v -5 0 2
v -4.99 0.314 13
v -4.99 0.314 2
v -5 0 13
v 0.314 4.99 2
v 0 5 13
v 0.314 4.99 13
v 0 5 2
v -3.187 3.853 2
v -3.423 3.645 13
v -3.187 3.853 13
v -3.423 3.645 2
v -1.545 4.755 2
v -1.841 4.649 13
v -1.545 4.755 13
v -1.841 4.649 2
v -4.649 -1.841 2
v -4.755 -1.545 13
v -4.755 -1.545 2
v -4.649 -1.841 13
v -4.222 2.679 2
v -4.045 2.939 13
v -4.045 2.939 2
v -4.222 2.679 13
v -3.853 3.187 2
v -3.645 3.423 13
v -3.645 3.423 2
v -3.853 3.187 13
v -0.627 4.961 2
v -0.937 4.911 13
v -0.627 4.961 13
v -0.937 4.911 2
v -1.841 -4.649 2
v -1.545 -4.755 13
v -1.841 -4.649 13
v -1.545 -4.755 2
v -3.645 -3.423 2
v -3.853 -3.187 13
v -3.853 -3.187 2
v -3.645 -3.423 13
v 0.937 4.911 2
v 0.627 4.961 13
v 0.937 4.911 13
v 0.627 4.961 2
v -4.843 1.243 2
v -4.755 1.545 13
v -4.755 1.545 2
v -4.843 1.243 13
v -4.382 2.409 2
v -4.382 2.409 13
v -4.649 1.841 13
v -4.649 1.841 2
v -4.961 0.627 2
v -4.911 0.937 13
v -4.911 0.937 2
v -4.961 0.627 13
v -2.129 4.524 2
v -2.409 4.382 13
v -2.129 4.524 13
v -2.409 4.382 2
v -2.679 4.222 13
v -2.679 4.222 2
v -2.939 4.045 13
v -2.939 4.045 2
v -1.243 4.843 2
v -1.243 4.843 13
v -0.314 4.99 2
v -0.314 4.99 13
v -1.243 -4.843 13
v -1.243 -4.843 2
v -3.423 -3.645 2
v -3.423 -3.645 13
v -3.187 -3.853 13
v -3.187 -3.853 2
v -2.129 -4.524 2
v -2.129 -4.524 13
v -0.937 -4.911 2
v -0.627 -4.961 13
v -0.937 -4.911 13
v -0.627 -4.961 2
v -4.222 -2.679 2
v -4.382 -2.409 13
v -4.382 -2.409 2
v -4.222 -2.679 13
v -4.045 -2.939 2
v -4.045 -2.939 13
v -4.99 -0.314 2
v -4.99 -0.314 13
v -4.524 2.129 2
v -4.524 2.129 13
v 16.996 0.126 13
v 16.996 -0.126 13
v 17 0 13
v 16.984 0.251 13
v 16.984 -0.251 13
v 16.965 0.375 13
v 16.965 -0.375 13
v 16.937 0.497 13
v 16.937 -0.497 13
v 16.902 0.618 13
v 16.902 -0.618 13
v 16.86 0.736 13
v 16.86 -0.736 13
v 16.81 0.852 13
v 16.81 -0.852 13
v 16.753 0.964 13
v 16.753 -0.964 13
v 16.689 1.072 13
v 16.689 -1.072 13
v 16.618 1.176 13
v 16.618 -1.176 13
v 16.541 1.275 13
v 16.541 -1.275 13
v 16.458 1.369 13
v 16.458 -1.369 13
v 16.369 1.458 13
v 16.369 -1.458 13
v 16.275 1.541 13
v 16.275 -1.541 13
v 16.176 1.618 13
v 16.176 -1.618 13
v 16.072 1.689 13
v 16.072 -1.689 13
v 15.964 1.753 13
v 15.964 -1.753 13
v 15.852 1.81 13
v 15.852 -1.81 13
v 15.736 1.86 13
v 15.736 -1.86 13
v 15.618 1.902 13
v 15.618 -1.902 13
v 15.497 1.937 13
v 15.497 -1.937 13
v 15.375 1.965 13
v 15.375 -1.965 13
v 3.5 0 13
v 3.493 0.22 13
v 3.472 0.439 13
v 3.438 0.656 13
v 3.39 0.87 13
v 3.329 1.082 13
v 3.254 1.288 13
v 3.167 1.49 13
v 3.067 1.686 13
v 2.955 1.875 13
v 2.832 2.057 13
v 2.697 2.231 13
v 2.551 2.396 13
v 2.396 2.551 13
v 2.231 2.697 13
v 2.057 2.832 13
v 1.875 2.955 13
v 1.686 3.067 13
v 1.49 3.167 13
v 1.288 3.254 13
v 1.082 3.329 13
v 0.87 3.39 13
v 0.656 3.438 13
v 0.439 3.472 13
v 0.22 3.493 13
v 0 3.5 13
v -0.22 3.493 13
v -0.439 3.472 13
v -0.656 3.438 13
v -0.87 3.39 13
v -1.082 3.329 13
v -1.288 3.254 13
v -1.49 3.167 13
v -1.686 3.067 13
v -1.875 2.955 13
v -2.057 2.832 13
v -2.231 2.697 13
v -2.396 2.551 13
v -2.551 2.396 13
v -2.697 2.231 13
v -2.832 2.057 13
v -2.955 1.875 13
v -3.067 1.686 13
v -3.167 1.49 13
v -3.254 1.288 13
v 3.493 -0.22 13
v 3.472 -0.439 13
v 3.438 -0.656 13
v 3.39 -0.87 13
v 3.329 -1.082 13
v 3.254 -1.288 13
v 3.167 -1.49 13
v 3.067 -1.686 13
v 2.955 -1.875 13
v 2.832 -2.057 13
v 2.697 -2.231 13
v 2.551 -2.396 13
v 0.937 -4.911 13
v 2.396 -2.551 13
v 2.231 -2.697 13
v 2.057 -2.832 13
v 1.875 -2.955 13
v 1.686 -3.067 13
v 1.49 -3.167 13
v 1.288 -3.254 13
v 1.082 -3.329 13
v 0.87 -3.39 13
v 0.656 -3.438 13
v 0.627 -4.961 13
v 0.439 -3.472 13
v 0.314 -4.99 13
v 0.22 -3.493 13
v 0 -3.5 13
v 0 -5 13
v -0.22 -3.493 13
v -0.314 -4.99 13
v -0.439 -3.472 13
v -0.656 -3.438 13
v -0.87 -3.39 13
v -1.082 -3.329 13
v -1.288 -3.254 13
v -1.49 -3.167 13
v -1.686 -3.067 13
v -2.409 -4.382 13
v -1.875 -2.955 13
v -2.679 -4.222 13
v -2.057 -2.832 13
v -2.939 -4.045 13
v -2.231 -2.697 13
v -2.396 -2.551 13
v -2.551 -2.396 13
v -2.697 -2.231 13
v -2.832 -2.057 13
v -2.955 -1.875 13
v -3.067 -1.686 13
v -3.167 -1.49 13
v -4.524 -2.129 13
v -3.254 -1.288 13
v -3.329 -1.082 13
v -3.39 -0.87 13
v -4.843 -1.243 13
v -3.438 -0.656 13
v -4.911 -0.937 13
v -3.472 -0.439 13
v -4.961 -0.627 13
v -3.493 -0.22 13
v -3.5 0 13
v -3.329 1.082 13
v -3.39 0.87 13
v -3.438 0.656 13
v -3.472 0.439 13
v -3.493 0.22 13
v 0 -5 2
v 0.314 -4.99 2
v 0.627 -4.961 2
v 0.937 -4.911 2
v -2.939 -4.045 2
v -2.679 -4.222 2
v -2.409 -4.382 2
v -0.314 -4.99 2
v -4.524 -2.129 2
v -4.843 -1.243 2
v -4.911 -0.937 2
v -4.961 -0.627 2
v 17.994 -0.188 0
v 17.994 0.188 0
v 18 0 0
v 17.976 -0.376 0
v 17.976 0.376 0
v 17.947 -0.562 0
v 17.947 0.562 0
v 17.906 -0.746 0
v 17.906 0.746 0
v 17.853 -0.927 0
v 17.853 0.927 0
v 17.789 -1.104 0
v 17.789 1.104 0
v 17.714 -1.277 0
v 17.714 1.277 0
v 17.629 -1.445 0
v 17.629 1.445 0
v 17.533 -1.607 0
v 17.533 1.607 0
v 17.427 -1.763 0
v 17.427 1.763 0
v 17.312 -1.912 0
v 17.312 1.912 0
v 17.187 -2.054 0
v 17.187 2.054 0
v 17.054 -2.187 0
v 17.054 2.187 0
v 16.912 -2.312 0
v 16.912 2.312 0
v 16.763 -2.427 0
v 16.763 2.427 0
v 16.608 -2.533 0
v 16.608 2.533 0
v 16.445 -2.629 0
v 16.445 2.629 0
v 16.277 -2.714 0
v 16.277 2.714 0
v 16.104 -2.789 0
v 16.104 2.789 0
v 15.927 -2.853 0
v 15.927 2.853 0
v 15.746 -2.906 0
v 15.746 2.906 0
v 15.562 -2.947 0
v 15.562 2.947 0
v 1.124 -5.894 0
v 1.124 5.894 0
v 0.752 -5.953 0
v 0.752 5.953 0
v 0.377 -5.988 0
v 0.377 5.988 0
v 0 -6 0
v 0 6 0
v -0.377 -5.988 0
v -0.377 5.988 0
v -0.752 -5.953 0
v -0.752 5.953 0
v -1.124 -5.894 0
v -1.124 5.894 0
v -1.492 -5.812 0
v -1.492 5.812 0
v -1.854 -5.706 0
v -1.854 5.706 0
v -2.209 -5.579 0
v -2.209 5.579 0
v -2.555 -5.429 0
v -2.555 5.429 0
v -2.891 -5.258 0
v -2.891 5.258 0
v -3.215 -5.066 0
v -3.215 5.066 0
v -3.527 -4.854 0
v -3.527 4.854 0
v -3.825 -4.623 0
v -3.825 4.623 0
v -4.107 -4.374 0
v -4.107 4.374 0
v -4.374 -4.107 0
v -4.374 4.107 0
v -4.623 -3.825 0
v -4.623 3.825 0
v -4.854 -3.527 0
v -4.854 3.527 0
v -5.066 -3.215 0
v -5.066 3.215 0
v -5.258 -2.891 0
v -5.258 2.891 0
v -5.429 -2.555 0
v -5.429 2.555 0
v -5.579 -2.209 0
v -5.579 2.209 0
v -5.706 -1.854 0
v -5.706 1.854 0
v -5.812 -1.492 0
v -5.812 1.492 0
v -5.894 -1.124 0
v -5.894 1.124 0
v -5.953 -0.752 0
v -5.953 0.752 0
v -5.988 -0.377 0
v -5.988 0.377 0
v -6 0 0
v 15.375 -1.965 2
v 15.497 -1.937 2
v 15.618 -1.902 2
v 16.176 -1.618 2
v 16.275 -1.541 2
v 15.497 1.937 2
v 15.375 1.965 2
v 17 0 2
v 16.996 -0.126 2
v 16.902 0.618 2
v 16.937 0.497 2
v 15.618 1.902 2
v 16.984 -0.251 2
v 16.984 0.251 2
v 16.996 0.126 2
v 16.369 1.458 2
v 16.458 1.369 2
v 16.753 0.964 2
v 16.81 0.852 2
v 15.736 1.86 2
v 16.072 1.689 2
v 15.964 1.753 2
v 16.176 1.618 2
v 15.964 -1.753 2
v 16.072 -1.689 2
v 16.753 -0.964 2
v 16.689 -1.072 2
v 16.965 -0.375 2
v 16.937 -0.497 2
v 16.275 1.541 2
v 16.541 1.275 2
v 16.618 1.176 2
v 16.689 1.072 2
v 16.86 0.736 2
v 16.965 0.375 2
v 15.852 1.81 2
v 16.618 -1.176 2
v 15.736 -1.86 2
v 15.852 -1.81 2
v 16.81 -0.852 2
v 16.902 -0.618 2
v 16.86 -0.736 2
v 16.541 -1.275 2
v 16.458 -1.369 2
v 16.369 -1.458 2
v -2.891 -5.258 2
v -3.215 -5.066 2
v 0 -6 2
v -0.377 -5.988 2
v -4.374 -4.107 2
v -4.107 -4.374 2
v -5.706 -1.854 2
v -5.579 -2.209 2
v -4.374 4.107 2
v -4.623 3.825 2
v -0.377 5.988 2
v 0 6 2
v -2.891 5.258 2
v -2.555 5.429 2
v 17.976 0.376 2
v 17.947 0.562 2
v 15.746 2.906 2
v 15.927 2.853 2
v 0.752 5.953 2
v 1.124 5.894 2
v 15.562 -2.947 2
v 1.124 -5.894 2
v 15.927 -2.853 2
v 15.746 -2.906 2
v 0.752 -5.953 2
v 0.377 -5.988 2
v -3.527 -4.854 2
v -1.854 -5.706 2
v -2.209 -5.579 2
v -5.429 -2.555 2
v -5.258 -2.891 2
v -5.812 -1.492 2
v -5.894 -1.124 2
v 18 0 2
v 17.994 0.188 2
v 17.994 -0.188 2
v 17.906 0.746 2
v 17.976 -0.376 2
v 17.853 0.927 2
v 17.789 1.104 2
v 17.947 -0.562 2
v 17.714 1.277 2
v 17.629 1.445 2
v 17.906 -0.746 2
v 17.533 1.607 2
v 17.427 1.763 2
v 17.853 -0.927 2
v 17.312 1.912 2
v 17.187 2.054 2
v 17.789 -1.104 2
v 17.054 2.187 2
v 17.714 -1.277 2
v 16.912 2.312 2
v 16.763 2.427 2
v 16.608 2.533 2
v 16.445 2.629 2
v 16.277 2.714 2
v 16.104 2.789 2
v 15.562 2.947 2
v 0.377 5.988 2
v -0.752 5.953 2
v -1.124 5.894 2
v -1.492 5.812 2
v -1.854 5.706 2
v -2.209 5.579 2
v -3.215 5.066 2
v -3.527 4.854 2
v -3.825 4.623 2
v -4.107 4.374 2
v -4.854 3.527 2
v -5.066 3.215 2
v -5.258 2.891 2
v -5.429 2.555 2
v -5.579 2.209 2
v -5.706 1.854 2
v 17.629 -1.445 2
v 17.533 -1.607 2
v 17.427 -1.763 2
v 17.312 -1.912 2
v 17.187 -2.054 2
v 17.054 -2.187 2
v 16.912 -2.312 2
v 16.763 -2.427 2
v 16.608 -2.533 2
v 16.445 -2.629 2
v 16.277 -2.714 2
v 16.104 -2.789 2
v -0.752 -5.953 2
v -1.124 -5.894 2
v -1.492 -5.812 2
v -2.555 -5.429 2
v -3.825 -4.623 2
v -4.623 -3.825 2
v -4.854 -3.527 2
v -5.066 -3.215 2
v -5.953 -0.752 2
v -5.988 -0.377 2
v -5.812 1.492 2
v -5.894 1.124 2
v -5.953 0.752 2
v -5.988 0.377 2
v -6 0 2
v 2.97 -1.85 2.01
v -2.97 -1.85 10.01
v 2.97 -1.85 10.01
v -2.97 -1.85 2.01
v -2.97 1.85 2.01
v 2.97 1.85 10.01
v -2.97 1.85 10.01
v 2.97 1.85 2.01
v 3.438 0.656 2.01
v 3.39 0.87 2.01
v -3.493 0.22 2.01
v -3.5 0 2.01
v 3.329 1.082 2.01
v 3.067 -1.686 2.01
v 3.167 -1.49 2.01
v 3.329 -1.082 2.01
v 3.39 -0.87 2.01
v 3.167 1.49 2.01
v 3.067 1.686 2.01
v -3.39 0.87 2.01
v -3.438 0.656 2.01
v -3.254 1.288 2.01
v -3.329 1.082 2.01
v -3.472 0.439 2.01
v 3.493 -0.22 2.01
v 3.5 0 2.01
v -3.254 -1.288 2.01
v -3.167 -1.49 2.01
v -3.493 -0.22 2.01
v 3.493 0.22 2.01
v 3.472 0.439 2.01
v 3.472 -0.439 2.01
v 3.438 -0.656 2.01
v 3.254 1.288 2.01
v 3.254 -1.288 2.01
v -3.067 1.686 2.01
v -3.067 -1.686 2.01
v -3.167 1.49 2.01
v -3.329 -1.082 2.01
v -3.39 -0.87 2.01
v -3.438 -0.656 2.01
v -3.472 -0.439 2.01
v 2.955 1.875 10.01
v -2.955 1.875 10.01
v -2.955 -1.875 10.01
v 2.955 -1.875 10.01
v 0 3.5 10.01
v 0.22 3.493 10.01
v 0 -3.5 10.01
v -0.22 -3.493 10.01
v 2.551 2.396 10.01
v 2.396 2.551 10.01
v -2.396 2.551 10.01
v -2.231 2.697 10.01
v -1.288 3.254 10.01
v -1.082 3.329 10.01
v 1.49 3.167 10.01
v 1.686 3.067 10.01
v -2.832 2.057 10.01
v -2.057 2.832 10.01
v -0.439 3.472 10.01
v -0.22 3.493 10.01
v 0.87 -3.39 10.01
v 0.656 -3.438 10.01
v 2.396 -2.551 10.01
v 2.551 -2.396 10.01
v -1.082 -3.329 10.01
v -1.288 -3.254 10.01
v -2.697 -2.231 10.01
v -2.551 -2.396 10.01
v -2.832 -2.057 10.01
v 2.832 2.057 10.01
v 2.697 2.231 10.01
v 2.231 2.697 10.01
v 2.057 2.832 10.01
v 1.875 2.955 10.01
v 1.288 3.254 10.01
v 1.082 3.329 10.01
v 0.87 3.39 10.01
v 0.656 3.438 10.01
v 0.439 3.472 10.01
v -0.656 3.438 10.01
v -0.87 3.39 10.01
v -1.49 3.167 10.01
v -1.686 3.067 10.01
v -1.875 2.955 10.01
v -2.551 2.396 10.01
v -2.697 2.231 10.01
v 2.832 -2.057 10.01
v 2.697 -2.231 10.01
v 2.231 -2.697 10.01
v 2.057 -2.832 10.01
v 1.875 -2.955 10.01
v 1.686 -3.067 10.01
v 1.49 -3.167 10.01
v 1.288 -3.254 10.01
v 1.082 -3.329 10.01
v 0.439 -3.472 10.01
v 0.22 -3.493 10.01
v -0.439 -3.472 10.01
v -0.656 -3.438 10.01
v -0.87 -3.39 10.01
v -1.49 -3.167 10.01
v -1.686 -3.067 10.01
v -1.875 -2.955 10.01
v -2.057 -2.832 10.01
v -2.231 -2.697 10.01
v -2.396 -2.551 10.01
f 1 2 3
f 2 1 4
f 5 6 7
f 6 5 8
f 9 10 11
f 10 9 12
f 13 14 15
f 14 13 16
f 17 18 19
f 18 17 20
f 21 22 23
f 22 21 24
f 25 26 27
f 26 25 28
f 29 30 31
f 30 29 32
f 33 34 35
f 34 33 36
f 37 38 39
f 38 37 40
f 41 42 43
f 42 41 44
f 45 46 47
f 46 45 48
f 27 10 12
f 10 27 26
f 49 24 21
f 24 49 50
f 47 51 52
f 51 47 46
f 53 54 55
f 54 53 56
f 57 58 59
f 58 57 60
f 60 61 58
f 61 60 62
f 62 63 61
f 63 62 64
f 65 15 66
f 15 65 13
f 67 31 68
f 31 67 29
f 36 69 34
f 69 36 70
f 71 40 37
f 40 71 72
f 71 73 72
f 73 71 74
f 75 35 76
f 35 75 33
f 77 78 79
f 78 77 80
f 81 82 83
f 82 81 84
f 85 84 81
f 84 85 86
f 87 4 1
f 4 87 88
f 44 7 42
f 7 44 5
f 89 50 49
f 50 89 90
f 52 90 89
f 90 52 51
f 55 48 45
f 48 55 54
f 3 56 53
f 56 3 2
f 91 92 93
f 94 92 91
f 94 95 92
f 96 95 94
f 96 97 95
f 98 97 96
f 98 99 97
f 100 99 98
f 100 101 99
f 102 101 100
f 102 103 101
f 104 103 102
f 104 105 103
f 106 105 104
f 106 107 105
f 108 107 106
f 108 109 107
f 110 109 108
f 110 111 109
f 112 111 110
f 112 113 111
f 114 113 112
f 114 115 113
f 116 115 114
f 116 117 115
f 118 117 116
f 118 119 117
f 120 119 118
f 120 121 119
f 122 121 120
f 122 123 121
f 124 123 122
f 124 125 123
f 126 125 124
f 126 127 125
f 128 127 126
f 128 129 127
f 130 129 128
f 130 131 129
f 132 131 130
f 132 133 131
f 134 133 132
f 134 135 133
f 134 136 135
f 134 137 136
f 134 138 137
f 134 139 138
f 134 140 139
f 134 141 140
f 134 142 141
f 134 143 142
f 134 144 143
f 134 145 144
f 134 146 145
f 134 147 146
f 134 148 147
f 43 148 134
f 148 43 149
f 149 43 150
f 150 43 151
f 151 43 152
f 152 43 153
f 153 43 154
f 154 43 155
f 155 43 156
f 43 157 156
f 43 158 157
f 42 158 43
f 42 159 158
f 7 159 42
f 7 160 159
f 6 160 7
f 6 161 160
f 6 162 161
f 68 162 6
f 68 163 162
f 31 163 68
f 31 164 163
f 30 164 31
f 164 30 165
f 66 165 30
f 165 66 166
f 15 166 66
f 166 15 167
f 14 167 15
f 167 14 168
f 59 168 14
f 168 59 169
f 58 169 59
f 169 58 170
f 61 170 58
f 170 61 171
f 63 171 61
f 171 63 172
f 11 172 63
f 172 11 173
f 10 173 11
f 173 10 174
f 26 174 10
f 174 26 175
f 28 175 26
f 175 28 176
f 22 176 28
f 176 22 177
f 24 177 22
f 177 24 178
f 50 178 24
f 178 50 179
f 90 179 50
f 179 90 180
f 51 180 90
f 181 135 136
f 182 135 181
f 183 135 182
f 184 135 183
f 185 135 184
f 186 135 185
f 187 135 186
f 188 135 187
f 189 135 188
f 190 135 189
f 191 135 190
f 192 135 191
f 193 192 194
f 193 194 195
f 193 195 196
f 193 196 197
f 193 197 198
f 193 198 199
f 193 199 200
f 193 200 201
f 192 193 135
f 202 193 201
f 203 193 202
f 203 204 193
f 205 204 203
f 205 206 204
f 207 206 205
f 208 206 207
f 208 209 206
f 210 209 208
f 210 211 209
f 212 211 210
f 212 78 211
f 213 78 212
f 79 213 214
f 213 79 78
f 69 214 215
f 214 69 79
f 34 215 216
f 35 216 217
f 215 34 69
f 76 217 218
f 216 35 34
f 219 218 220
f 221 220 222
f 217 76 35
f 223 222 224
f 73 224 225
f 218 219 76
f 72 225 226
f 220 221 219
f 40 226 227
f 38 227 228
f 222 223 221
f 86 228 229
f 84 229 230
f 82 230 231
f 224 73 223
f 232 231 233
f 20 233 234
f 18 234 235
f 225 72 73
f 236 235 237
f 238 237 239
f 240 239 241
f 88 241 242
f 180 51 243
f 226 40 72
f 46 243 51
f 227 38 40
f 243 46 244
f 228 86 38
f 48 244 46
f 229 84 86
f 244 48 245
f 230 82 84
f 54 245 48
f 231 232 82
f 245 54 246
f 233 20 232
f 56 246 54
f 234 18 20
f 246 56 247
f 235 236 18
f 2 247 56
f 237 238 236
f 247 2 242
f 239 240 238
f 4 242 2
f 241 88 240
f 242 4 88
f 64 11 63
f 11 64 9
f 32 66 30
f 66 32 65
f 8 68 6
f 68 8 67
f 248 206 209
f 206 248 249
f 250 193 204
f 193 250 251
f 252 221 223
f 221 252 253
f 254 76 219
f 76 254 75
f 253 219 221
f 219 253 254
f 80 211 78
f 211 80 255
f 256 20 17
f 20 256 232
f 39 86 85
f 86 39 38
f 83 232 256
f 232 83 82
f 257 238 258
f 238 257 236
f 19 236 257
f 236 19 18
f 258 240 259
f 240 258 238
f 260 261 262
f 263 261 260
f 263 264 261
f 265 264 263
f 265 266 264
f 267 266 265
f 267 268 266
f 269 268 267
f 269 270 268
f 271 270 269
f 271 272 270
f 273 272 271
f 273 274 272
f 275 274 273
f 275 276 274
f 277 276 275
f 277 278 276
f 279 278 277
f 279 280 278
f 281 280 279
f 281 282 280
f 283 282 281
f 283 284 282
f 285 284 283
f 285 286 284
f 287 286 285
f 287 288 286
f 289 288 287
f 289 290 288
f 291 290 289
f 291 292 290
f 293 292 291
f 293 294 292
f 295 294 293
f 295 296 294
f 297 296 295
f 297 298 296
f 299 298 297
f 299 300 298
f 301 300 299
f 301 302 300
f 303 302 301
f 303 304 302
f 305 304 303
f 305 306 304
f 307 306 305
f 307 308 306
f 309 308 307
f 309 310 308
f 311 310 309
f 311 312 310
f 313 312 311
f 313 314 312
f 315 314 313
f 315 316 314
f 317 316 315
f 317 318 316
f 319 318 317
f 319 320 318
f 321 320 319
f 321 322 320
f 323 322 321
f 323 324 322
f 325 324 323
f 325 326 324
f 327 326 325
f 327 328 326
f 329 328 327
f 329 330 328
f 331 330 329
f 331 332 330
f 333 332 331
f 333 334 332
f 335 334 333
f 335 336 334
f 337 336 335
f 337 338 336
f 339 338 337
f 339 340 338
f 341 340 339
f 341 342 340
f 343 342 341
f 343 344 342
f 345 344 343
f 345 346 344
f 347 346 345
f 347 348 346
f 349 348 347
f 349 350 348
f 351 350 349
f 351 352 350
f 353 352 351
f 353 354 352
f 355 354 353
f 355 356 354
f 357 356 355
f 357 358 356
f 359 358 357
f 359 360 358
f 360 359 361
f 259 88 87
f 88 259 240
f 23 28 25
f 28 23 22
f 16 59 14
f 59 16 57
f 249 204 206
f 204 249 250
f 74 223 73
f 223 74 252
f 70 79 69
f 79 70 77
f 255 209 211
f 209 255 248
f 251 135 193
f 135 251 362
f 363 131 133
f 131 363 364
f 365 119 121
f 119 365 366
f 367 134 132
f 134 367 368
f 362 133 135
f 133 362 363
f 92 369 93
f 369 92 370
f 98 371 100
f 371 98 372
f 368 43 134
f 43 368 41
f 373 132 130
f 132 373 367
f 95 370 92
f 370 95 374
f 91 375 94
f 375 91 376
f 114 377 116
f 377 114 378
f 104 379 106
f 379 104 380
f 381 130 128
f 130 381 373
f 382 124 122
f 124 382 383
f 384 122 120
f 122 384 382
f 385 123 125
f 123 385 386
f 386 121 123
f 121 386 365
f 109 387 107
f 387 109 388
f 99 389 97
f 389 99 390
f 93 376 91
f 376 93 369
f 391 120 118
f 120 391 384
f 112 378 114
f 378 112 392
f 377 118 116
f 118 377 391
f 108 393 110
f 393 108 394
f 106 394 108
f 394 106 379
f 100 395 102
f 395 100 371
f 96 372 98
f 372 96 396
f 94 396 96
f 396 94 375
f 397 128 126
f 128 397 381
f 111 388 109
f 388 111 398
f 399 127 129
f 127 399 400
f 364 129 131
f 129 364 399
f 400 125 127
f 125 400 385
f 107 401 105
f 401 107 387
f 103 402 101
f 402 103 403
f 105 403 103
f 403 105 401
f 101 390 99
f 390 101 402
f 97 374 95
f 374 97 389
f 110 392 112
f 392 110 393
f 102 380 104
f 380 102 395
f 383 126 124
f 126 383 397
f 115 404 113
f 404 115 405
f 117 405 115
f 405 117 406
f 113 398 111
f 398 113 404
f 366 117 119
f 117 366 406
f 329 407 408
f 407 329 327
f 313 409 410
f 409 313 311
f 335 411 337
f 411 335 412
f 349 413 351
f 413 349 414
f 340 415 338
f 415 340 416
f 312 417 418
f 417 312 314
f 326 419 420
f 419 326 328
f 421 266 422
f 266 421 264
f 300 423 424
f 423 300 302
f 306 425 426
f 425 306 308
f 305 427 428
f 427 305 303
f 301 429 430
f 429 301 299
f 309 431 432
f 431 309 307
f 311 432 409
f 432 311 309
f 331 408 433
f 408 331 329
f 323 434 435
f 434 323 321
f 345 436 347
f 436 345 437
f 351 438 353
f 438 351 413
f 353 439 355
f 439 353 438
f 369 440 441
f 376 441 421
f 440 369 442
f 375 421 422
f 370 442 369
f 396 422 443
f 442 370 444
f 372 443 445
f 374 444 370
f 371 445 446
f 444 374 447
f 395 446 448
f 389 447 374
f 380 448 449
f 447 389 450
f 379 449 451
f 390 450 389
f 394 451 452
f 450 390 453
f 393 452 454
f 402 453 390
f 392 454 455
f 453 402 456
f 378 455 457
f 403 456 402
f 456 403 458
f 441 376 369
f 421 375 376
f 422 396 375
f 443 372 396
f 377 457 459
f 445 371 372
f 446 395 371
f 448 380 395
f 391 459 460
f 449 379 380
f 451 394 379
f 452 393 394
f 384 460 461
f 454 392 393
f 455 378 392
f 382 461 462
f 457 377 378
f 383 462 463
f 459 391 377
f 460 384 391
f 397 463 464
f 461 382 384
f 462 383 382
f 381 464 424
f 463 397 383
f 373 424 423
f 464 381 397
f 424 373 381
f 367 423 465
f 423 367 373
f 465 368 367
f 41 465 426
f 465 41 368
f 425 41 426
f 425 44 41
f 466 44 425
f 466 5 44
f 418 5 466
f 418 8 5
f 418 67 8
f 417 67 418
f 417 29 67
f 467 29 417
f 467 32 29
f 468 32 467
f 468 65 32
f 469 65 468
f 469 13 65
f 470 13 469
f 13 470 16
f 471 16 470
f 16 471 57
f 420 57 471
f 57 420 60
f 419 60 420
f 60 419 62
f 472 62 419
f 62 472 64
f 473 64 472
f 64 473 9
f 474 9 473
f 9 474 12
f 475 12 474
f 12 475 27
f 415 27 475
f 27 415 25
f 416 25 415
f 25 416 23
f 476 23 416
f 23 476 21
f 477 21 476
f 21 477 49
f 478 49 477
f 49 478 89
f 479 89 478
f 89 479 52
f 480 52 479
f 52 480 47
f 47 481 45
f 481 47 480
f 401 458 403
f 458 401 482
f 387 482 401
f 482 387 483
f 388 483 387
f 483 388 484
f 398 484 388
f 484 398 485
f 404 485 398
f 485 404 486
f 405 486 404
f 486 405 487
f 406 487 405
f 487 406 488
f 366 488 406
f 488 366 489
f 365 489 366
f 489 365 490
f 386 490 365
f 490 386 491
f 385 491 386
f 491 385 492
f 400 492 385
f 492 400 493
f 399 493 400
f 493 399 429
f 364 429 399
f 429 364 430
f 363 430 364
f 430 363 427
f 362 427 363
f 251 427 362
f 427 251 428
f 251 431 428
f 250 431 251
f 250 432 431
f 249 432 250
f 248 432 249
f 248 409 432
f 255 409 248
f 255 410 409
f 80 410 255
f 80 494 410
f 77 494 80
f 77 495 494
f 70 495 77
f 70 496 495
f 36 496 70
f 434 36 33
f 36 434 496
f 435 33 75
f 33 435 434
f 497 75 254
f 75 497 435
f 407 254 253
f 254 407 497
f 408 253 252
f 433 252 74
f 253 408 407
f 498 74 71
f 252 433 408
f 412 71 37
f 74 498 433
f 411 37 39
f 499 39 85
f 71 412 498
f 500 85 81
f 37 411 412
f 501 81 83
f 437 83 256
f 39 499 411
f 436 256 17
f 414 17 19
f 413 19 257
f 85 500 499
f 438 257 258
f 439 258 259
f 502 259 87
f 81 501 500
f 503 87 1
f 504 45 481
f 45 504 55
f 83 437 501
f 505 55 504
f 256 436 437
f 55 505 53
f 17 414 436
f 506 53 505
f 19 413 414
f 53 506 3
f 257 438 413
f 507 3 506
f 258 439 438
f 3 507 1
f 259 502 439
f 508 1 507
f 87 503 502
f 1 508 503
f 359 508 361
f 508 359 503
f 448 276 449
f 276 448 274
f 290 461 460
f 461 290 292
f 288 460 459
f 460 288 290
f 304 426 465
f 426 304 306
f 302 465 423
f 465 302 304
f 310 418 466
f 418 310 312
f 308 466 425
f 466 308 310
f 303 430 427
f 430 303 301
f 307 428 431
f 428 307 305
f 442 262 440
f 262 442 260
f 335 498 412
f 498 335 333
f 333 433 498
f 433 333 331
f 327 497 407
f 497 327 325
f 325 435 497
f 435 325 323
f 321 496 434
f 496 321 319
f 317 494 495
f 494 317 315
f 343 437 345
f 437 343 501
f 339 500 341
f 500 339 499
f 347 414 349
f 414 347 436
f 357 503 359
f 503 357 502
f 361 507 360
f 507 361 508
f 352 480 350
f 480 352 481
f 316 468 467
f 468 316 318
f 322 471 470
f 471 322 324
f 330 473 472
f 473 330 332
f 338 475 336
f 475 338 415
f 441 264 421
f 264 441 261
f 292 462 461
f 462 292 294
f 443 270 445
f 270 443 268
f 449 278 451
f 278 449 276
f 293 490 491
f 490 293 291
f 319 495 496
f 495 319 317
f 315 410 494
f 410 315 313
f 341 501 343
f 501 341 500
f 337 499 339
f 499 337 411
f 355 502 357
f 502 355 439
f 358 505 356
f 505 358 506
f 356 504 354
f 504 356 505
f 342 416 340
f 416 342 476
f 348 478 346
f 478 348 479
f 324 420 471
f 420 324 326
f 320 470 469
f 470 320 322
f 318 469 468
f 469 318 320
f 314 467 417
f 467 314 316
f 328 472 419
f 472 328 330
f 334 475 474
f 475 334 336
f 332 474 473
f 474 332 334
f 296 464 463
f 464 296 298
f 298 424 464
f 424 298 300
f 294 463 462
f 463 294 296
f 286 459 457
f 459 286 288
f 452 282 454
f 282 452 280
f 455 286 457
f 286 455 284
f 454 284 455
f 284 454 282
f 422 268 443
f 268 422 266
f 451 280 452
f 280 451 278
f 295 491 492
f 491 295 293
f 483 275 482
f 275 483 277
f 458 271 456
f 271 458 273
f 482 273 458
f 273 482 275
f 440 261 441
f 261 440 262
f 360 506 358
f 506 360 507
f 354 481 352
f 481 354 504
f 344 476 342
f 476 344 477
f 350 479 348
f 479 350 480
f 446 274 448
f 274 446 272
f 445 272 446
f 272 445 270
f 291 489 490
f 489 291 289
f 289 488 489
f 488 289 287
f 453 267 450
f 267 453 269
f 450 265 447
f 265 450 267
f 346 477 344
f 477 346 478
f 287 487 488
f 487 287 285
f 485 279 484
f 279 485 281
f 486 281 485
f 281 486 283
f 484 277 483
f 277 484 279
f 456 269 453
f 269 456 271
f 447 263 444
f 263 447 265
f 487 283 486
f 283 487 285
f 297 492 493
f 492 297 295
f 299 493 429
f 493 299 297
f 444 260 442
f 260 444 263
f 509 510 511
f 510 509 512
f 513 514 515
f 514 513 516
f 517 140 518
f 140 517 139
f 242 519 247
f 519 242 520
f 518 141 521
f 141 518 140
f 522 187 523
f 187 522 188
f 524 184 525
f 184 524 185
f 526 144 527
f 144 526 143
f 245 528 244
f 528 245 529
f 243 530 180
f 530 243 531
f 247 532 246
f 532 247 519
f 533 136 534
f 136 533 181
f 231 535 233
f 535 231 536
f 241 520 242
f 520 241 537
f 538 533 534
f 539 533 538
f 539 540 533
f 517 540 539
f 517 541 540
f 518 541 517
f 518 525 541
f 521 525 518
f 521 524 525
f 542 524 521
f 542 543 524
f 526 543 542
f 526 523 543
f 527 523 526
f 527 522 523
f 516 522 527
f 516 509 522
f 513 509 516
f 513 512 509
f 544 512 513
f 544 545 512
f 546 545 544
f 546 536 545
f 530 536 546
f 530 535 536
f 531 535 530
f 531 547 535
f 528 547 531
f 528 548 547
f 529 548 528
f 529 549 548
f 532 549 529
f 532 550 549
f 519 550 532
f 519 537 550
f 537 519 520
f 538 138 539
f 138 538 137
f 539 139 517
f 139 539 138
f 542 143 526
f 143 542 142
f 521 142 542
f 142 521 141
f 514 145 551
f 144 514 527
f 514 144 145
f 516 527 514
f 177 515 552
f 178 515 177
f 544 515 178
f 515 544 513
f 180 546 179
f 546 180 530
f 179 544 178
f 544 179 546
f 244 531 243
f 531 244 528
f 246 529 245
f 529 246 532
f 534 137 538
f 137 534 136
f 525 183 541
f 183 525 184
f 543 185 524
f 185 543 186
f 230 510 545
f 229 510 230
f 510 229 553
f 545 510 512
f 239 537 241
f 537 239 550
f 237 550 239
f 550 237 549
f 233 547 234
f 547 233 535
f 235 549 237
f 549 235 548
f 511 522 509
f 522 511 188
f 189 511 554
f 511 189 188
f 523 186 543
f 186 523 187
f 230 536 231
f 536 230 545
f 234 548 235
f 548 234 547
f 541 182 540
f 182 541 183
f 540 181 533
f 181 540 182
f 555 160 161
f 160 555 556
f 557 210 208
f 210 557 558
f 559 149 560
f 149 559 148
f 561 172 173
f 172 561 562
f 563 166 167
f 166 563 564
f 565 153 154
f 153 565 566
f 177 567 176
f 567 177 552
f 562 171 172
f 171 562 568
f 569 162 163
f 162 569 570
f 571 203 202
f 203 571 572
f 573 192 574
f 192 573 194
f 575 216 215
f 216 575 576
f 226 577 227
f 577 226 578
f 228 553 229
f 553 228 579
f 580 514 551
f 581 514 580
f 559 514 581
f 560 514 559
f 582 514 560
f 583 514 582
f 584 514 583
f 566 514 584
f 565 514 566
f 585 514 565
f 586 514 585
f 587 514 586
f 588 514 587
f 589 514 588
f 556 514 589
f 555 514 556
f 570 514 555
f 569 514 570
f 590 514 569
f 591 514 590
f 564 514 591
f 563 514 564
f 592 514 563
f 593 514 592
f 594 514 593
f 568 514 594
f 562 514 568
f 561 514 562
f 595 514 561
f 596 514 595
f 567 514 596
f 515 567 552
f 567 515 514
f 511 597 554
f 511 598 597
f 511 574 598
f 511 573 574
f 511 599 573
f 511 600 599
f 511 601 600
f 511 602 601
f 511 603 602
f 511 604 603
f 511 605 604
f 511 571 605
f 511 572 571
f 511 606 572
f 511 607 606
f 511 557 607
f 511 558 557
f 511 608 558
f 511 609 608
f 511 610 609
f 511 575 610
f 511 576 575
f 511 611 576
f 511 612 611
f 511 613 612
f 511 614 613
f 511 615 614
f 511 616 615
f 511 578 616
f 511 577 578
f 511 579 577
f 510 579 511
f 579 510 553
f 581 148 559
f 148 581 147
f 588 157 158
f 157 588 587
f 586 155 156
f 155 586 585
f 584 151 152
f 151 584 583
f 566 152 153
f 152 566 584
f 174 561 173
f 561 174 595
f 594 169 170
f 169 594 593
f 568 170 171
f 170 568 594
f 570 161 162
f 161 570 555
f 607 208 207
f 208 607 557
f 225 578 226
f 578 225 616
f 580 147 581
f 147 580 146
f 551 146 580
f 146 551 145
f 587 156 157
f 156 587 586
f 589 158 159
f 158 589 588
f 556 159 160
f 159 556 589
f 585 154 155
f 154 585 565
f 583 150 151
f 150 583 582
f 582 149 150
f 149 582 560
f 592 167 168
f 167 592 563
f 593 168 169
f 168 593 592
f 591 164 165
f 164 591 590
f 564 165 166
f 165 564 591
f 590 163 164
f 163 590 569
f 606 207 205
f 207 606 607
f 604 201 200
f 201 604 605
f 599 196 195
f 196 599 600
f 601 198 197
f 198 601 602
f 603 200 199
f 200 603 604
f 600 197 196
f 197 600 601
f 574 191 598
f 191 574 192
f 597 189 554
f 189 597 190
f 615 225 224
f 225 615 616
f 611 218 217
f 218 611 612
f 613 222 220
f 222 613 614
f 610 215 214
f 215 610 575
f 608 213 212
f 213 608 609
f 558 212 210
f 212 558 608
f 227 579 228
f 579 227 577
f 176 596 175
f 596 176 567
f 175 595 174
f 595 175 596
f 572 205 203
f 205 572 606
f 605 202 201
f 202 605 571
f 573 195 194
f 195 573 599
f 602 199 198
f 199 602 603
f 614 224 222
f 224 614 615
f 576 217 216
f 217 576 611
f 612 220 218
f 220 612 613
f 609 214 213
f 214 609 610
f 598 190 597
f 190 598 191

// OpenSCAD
r1 = 3.5;
h1 = 11;
r2 = 5;
h2 = 13;

module cut() {
	difference() {
		cylinder(r = r1, h = h1, center = true, $fn = 100);
		union() {
			translate([0, -(r1 + 1.85), 0])
				cube([r1 * 2, r1 * 2, h1 + 2], center = true);
			translate([0, r1 + 1.85, 0])
				cube([r1 * 2, r1 * 2, h1 + 2], center = true);
		}
	}
}

module hat(r, h) {
	hull() {
		cylinder(r = r, h = h, center = false, $fn = 100);
		translate([15, 0, 0])
			cylinder(r = r - 3, h = h, center = false, $fn = 100);
	}
}

difference() {
	difference() {
		union() {
			cylinder(r = r2, h = h2, center = false, $fn = 100);
			hat(r2, h2);
			hat(r2 + 1, 2);
		}
		translate([0, 0, h1 / 2 + (h2 - h1) + .01])
			cut();
	}
	translate([0, 0, h2 - 3 + .01])
		cylinder(r = r1, h = 3, center = false, $fn = 100);
}
